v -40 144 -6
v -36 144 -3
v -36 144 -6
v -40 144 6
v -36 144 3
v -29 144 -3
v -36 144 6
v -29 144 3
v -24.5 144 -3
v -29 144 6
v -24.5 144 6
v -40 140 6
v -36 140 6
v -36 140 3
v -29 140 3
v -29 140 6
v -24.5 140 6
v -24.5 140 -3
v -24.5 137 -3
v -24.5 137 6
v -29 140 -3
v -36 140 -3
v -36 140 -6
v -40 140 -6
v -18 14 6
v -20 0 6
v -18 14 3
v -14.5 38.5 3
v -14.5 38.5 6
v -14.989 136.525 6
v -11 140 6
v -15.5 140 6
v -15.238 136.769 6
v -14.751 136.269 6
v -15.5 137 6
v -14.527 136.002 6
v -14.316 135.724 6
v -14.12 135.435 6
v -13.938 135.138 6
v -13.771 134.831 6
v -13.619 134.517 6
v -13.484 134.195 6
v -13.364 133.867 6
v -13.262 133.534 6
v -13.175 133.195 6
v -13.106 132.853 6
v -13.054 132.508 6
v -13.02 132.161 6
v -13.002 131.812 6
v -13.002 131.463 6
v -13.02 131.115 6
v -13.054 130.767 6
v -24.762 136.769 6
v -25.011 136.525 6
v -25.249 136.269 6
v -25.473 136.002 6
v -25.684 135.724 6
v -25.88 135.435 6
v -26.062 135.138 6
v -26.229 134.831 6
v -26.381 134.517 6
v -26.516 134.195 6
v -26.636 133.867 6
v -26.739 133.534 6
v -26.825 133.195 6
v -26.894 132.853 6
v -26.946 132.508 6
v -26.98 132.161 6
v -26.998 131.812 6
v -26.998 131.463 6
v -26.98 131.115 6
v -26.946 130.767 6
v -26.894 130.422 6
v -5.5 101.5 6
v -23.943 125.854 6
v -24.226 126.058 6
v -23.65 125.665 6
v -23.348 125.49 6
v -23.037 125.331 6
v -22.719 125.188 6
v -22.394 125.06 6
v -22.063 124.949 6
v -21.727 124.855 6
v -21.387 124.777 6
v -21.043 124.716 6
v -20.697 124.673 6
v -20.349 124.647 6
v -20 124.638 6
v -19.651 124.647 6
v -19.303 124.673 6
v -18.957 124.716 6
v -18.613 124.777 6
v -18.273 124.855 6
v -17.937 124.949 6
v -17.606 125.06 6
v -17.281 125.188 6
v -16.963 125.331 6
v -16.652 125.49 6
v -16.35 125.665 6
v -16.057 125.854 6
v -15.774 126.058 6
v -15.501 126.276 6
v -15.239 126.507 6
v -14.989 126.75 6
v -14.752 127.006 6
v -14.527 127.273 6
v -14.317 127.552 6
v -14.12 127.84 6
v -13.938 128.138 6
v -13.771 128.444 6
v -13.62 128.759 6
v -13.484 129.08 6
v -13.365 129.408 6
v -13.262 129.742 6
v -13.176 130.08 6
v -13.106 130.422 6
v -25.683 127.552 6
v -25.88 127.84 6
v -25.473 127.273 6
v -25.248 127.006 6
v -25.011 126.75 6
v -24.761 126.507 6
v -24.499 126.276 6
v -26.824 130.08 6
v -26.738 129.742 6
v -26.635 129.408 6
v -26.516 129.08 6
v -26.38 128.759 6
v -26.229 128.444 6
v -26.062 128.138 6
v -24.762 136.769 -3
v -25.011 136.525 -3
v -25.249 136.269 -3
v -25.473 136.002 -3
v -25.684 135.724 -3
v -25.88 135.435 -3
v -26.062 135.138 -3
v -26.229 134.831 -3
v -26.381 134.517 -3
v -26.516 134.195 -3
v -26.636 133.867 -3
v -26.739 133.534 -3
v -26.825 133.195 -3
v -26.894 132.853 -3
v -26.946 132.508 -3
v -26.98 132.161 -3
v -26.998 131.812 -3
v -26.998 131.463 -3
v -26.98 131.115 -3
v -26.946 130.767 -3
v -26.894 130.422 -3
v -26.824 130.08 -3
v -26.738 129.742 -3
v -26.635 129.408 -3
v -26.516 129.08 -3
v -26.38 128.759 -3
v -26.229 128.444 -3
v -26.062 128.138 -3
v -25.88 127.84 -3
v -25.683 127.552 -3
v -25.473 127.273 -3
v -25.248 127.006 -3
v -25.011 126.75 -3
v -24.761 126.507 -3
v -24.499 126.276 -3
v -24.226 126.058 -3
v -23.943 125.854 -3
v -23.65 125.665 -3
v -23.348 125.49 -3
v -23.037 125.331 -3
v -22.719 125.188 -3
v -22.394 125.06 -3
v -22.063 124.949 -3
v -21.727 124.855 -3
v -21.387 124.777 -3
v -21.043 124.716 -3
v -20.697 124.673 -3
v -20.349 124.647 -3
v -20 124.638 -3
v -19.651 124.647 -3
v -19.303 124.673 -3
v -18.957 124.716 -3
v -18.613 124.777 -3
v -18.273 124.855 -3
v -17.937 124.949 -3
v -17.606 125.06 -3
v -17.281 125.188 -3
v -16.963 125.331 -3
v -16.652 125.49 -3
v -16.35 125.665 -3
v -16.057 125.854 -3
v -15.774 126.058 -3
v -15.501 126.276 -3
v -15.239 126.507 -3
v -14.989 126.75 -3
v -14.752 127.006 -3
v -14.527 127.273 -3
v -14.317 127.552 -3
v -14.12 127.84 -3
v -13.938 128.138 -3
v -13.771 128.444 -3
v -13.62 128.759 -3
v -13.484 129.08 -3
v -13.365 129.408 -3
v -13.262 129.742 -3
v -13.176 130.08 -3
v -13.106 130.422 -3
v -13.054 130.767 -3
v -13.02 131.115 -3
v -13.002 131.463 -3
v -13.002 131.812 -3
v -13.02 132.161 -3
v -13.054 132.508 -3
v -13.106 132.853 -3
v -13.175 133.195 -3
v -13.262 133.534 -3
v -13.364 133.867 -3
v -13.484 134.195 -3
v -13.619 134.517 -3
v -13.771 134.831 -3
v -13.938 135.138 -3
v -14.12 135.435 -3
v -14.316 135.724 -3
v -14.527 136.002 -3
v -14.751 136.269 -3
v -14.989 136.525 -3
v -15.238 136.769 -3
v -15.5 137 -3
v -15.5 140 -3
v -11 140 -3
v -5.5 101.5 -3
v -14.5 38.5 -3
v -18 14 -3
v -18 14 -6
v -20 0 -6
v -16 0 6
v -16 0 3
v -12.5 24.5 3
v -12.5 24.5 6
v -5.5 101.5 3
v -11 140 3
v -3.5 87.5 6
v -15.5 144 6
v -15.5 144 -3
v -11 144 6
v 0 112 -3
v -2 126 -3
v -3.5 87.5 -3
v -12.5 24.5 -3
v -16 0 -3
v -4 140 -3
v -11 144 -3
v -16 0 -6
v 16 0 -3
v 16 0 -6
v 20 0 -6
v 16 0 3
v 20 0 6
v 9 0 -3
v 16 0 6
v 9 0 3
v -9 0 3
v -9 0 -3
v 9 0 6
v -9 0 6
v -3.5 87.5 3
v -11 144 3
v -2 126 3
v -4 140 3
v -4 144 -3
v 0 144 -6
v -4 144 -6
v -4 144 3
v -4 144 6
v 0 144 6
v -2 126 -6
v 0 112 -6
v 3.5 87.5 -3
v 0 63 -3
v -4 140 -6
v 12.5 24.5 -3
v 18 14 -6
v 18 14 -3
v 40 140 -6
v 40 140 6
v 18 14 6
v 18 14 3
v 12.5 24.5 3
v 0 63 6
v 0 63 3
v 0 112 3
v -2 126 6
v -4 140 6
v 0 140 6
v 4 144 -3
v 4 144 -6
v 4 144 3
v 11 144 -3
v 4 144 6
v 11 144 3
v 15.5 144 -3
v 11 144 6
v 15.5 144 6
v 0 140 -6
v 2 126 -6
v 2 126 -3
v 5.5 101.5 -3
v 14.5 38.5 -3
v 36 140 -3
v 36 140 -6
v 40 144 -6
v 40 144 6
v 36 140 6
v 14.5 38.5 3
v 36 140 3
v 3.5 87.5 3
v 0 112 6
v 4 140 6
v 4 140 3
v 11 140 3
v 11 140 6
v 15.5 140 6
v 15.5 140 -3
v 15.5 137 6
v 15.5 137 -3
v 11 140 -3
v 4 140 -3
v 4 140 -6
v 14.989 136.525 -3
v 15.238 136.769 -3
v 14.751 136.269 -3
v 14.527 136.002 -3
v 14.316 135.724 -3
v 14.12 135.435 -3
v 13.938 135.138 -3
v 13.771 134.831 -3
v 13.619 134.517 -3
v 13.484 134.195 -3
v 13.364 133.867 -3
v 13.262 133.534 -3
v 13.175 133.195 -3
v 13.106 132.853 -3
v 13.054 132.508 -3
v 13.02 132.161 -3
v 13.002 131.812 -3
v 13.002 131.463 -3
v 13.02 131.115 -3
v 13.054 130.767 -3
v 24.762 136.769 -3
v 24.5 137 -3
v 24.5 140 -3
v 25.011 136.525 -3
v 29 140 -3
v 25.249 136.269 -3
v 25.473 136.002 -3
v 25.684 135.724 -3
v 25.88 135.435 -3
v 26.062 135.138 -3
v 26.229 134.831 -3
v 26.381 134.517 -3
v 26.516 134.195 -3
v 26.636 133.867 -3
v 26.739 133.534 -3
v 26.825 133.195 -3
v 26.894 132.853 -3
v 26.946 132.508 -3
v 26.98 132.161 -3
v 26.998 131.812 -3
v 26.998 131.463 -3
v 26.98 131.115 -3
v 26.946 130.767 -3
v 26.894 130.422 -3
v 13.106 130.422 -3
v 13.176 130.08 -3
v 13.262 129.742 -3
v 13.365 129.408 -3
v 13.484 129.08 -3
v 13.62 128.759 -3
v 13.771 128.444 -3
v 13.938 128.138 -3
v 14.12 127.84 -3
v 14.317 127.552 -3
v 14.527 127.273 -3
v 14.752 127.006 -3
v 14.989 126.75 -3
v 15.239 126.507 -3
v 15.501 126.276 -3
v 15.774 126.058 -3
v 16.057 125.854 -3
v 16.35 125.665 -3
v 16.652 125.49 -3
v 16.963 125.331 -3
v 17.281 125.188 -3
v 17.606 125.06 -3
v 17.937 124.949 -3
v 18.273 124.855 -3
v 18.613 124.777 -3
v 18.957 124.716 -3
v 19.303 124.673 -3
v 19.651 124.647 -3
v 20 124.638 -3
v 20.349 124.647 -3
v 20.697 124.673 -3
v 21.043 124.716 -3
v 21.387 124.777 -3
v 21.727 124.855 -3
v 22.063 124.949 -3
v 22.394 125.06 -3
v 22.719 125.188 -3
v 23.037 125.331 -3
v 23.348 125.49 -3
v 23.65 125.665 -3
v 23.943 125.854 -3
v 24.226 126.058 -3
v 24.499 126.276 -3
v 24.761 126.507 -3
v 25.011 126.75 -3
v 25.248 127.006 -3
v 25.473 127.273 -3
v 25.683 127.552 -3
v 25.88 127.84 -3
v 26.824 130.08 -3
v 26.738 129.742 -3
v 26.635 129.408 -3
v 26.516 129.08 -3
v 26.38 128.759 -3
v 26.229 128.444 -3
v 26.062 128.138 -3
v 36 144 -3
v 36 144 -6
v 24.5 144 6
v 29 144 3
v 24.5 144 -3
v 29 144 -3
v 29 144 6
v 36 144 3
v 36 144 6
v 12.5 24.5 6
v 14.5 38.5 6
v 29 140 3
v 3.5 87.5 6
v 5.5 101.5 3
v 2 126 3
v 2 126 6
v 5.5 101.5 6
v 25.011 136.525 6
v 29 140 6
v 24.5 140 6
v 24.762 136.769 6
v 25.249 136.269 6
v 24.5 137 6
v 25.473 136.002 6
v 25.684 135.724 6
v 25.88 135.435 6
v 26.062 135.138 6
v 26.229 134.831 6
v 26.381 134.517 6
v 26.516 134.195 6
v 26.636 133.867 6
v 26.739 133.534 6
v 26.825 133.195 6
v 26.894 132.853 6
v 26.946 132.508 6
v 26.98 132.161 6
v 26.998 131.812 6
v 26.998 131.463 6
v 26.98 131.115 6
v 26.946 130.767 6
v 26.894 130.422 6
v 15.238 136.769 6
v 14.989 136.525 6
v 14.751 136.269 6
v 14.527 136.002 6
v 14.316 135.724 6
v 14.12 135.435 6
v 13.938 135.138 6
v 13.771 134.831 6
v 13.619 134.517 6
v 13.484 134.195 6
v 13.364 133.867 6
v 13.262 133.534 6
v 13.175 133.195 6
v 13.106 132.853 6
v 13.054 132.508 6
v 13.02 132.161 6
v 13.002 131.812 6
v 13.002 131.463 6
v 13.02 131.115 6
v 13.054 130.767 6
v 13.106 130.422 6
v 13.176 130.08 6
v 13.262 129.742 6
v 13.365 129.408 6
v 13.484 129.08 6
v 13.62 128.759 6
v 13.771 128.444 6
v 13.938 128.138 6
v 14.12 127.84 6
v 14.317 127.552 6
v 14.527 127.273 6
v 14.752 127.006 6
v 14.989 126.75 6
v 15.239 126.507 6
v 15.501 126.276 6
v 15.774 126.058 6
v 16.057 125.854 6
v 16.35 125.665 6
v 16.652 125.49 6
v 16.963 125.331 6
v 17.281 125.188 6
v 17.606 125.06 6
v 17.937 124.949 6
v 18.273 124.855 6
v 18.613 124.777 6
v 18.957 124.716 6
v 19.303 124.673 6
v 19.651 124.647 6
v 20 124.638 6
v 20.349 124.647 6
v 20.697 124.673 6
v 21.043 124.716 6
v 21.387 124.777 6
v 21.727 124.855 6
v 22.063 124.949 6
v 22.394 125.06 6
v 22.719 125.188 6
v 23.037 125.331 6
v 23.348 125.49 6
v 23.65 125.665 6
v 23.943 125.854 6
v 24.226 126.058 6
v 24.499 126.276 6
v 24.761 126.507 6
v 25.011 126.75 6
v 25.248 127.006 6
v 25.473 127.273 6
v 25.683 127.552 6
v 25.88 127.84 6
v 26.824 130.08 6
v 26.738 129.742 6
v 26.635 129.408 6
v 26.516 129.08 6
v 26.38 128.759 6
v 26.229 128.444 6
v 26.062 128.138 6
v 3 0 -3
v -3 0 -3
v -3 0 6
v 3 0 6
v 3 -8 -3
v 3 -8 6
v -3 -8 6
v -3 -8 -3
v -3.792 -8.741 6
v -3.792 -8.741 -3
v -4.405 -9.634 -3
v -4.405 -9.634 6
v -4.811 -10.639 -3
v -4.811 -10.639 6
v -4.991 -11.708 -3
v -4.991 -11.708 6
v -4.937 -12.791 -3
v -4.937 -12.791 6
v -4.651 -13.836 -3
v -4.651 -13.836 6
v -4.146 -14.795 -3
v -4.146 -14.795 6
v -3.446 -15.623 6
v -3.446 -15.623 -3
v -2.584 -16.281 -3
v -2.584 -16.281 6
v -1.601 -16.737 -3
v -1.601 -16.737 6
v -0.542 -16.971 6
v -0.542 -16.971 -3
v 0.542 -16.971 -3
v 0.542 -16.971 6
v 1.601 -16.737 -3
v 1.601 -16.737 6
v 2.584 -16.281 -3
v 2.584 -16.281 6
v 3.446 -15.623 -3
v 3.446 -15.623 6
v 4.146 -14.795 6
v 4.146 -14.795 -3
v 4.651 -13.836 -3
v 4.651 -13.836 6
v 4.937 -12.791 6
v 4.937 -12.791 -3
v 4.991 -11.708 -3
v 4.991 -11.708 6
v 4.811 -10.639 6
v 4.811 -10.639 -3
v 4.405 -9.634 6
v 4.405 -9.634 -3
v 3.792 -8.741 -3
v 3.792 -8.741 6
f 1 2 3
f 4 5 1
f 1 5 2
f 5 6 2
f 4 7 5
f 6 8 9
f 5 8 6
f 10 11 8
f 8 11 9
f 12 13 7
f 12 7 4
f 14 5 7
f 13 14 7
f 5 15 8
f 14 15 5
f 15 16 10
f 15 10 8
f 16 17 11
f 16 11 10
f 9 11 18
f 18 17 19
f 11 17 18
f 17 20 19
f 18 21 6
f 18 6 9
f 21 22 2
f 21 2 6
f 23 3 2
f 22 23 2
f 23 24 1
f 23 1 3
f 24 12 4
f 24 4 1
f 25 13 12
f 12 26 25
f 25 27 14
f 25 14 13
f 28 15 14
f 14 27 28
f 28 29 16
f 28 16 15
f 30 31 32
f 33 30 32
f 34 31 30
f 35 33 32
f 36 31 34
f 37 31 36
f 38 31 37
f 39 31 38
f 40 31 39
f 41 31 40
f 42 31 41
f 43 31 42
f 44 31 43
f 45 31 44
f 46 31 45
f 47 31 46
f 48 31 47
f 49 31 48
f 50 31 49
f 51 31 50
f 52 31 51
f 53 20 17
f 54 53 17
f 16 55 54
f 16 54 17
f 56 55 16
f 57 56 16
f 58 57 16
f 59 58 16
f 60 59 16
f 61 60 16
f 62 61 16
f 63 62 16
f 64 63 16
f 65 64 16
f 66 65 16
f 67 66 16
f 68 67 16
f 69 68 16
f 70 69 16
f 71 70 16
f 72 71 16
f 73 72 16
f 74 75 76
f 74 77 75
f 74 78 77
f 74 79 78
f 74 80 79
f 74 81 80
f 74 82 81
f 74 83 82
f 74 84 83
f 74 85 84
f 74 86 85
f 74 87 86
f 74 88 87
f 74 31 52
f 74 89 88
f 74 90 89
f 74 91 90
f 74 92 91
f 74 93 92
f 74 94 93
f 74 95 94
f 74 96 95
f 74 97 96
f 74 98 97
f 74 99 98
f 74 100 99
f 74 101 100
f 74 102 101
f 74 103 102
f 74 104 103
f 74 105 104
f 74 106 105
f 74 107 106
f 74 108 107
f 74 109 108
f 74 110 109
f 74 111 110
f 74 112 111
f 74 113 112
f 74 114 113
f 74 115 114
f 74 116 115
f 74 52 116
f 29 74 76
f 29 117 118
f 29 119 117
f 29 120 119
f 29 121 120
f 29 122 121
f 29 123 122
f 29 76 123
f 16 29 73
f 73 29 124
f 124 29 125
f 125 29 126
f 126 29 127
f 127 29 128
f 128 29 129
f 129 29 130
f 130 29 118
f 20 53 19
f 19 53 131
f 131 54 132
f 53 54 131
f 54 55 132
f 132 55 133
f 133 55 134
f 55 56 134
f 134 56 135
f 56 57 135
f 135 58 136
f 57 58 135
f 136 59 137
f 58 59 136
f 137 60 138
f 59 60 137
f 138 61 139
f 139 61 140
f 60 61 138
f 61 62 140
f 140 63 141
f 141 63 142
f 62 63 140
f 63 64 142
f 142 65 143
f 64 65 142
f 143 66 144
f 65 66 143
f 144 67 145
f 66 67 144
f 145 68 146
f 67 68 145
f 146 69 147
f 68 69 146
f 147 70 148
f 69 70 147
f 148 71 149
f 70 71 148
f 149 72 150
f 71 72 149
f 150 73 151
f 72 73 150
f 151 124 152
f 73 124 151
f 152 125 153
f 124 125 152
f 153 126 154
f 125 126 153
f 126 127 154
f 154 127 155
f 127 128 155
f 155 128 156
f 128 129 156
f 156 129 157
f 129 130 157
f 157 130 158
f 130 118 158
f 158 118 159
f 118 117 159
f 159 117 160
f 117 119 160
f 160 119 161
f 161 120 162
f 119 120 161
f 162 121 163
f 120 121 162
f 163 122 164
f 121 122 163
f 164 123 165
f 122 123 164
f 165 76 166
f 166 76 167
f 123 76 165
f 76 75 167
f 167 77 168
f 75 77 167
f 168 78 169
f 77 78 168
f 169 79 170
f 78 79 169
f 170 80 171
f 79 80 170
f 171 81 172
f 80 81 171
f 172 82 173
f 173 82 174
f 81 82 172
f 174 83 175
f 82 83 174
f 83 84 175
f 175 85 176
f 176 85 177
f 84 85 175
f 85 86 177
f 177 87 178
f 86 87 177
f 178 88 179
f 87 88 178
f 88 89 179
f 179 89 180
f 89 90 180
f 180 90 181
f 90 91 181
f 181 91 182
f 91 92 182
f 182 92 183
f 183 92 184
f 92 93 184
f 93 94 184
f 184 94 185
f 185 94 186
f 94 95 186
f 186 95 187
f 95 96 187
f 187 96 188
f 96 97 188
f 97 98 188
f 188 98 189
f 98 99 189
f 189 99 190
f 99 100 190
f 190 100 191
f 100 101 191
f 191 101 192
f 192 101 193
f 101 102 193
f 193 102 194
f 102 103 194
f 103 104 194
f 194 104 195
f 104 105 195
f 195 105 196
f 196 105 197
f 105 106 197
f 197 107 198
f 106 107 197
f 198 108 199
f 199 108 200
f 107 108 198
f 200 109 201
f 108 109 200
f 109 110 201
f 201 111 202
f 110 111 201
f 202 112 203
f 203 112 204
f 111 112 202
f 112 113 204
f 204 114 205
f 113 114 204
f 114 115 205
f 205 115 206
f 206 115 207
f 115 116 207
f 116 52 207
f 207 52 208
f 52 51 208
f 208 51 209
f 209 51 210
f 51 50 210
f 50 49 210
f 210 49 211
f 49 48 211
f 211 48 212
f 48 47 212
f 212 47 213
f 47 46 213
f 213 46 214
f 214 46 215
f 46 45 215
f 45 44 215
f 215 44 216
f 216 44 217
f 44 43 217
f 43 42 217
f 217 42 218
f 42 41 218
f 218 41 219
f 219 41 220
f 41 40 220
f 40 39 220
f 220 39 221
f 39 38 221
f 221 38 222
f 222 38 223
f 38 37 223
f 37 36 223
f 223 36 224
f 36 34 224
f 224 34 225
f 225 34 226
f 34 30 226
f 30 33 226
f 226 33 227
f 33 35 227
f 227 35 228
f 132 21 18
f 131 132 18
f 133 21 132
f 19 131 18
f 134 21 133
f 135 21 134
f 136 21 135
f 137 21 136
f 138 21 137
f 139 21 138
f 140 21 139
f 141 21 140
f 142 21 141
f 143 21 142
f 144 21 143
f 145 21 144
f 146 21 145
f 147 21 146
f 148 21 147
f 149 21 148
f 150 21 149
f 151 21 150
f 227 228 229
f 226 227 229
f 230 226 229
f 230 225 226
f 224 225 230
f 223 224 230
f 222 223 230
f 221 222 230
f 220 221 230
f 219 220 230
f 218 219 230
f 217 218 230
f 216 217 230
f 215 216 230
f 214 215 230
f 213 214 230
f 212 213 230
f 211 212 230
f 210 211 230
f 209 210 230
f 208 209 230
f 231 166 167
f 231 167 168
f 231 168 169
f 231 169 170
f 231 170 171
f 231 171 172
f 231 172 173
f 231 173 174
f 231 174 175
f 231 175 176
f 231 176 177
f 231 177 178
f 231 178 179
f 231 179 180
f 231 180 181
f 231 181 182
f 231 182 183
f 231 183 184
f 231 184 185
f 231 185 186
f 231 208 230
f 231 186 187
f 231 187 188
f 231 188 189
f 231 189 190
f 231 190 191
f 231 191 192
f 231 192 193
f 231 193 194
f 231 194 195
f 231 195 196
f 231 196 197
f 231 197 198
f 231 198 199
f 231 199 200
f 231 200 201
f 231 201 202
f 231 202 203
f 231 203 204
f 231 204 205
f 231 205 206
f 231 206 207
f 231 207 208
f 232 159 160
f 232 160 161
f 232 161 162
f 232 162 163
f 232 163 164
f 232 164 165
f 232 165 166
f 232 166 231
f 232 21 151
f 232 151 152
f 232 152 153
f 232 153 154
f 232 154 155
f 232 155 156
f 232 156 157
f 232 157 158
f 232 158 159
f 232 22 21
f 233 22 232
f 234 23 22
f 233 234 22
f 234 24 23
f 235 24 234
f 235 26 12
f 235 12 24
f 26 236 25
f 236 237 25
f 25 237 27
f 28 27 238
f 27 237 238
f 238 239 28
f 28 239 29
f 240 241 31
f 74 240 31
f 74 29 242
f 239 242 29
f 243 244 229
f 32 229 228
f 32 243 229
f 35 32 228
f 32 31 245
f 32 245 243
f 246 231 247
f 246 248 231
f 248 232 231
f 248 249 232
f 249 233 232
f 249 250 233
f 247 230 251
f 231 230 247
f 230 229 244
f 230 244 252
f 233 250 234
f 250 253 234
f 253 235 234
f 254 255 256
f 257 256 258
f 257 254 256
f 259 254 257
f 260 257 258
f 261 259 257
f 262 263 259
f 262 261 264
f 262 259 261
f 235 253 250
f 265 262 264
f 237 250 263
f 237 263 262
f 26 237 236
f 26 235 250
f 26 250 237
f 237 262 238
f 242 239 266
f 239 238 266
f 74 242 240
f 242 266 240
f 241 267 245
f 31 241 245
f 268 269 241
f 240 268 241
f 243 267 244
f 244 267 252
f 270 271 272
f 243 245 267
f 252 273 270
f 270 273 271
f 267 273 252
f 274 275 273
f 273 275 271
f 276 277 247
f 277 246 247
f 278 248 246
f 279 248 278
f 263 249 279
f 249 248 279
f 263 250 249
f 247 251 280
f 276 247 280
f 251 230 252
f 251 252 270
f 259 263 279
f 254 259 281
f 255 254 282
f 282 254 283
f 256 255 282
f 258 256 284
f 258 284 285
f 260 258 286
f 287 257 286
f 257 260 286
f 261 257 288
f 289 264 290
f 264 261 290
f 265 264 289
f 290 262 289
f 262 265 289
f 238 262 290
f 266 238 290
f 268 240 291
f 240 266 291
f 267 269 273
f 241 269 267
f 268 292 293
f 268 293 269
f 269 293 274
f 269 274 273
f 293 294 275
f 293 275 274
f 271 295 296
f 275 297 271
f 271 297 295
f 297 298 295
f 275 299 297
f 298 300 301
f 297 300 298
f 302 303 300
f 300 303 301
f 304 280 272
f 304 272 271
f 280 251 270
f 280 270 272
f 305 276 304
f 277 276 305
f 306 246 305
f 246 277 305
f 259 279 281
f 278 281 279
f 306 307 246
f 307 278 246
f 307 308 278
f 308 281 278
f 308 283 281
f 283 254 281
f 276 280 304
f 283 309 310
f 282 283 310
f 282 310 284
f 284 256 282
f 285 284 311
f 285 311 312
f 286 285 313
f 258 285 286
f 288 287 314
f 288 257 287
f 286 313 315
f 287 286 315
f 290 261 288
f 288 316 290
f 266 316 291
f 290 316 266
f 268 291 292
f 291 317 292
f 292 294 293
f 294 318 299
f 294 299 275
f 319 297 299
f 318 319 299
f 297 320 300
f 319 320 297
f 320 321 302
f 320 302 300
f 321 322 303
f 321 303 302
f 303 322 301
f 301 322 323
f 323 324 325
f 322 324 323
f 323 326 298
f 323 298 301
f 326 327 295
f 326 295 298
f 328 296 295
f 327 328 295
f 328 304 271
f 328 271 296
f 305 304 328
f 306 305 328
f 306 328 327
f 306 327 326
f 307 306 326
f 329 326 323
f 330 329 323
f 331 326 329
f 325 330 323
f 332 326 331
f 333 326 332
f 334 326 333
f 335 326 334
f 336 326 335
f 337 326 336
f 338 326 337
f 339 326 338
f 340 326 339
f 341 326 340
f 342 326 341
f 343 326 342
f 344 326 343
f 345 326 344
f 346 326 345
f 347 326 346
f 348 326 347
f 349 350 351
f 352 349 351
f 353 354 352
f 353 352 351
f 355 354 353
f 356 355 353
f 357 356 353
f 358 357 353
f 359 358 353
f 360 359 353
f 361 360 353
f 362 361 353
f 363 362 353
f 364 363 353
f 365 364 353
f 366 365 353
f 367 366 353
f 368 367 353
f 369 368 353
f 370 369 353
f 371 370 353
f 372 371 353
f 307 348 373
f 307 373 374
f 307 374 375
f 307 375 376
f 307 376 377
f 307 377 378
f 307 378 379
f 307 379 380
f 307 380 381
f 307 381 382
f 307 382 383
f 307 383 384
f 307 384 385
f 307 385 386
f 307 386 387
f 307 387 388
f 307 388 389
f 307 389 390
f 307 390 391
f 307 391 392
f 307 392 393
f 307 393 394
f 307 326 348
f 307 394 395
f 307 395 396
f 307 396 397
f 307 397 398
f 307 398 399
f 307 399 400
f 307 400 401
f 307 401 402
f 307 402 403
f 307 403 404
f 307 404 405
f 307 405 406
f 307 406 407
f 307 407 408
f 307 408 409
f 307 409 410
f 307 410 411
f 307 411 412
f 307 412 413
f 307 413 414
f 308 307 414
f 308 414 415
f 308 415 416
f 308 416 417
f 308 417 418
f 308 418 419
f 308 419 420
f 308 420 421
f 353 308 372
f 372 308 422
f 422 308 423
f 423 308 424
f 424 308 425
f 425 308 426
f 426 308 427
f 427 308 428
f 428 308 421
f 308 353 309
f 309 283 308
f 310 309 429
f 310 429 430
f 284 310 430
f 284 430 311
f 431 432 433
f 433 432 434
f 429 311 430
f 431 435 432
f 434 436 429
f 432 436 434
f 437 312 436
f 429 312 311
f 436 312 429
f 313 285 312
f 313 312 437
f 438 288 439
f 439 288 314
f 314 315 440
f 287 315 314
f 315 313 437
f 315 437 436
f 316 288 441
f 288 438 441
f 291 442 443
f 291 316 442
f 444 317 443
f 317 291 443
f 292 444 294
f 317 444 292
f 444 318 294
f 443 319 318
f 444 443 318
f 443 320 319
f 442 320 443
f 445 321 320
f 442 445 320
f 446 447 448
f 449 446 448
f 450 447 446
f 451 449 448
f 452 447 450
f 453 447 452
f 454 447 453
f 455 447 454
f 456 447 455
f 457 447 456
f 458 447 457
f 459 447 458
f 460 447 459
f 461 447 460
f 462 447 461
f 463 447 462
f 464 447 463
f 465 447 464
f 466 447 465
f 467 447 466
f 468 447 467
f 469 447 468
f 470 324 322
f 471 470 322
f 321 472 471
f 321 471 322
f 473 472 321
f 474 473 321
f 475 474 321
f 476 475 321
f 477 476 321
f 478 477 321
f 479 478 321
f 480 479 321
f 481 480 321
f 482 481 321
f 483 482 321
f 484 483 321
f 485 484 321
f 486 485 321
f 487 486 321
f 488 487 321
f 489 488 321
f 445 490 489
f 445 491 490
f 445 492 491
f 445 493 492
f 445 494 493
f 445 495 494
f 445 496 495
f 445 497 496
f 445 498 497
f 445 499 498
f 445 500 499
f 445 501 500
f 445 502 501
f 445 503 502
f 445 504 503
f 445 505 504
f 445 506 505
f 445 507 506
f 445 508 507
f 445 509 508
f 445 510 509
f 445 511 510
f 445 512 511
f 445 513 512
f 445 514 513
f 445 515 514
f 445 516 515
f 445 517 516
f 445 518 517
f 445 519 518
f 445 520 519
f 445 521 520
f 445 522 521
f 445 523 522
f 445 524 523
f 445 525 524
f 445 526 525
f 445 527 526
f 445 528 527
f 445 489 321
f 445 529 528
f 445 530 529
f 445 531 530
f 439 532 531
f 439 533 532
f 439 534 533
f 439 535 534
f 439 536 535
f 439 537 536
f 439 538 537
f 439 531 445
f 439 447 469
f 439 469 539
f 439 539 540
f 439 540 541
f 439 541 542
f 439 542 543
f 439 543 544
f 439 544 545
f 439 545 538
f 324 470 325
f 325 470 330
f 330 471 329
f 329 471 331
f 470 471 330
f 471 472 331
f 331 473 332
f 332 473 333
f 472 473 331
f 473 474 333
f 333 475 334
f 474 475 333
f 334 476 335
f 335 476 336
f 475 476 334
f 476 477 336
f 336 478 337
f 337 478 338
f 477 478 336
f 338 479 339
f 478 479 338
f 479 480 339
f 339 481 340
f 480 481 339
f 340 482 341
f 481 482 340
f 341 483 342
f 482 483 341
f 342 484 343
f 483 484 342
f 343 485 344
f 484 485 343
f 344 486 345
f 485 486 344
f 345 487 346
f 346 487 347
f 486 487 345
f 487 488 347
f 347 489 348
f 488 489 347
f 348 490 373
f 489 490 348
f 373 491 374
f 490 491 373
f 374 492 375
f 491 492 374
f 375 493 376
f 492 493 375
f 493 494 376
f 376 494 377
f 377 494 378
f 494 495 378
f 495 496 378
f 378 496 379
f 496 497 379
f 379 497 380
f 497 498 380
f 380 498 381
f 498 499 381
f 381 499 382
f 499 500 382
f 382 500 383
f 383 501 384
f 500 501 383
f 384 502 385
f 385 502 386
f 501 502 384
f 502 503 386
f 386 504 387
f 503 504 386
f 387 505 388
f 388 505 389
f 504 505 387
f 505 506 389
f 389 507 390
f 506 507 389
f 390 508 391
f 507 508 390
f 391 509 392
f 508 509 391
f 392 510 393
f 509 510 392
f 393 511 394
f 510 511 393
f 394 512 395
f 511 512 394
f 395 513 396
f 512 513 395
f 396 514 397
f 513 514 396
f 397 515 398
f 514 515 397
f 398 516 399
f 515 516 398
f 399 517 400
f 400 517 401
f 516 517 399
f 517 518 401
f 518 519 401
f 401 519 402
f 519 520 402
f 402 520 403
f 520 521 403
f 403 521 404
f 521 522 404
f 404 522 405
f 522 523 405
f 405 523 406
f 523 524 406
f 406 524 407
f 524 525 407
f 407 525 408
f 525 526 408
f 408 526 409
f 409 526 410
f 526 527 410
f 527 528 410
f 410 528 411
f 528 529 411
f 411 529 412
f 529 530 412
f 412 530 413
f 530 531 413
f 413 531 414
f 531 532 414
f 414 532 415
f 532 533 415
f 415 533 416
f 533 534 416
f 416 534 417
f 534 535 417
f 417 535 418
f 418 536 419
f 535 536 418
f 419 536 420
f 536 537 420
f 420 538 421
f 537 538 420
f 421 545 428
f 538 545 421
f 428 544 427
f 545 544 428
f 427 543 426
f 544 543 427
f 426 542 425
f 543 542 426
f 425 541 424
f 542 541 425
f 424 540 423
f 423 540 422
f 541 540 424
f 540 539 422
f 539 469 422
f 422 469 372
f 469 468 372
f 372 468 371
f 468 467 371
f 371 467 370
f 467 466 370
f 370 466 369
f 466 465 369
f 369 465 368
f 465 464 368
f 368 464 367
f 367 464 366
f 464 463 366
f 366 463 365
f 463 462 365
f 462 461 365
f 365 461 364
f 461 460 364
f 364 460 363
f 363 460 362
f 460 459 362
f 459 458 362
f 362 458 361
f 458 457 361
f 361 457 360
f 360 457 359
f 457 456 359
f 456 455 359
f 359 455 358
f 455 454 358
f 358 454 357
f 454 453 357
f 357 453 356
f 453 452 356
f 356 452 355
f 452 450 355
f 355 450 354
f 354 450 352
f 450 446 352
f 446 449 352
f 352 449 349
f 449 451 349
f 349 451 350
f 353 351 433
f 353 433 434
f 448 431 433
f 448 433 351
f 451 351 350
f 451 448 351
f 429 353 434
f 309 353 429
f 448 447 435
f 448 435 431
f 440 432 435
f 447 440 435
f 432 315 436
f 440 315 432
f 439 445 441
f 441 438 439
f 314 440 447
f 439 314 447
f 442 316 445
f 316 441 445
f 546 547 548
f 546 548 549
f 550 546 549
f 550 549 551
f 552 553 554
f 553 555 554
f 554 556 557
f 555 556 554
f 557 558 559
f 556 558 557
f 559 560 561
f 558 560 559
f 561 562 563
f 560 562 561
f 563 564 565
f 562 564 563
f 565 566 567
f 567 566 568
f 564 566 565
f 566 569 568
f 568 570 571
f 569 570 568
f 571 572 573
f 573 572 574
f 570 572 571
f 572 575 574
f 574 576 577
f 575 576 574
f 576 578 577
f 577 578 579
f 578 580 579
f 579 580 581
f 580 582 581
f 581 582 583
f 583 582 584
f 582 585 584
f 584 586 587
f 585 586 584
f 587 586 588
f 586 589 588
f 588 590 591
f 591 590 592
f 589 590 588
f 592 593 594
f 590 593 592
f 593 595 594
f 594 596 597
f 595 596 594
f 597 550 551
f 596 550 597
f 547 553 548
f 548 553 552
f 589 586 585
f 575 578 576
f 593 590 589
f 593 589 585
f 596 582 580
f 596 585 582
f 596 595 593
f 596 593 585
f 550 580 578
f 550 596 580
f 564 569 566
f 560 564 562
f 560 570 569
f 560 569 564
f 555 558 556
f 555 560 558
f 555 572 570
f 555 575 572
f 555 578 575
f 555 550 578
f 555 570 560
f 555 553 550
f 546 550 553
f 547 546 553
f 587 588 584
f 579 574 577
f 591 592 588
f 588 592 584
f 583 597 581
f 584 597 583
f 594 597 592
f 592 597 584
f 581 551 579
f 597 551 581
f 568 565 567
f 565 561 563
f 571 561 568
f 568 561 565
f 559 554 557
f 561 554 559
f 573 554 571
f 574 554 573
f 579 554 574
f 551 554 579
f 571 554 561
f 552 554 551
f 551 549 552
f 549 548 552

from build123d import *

# Parameters (mm, degrees)
SKETCH004_W          = 32
SKETCH004_H          = 3
SKETCH005_W          = 7
SKETCH005_H          = 3
SKETCH006_W          = 7
SKETCH006_H          = 3
POCKET_DEPTH         = 6.001
POCKET_DEPTH_BACK    = -6.001
POCKET001_DEPTH      = 6.001
POCKET001_DEPTH_BACK = -6.001
PAD_DEPTH            = 6
PAD_DEPTH_BACK       = 3


with BuildPart() as body:
    # AdditivePipe: sweep along a path in Sketch
    with BuildLine(Plane.XY) as additivepipe_path:
        Line((-20, 144), (-20, 140))
        Line((-20, 140), (0, 0))
    # Sketch002 → AdditivePipe (sweep)
    with BuildSketch(Plane.XZ):
        Polygon((-20, 6), (-20, -6), (-16, -6), (-16, -3), (-9, -3), (9, -3), (16, -3), (16, -6), (20, -6), (20, 6), (16, 6), (16, 3), (9, 3), (9, 6), (-9, 6), (-9, 3), (-16, 3), (-16, 6), align=None)
    sweep(path=additivepipe_path.line)

    # AdditivePipe001: sweep along a path in Sketch001
    with BuildLine(Plane.XY) as additivepipe001_path:
        Line((20, 144), (20, 140))
        Line((20, 140), (0, 0))
    # Sketch002 → AdditivePipe001 (sweep)
    with BuildSketch(Plane.XZ):
        Polygon((-20, 6), (-20, -6), (-16, -6), (-16, -3), (-9, -3), (9, -3), (16, -3), (16, -6), (20, -6), (20, 6), (16, 6), (16, 3), (9, 3), (9, 6), (-9, 6), (-9, 3), (-16, 3), (-16, 6), align=None)
    sweep(path=additivepipe001_path.line)

    # SubtractivePipe: sweep along a path in Sketch
    with BuildLine(Plane.XY) as subtractivepipe_path:
        Line((-20, 144), (-20, 140))
        Line((-20, 140), (0, 0))
    # Sketch004 → SubtractivePipe (sweep, cut)
    with BuildSketch(Plane.XZ):
        with Locations((0, -4.5)):
            Rectangle(SKETCH004_W, SKETCH004_H)
    sweep(path=subtractivepipe_path.line, mode=Mode.SUBTRACT)

    # SubtractivePipe001: sweep along a path in Sketch001
    with BuildLine(Plane.XY) as subtractivepipe001_path:
        Line((20, 144), (20, 140))
        Line((20, 140), (0, 0))
    # Sketch004 → SubtractivePipe001 (sweep, cut)
    with BuildSketch(Plane.XZ):
        with Locations((0, -4.5)):
            Rectangle(SKETCH004_W, SKETCH004_H)
    sweep(path=subtractivepipe001_path.line, mode=Mode.SUBTRACT)

    # SubtractivePipe002: sweep along a path in Sketch
    with BuildLine(Plane.XY) as subtractivepipe002_path:
        Line((-20, 144), (-20, 140))
        Line((-20, 140), (0, 0))
    # Sketch005 → SubtractivePipe002 (sweep, cut)
    with BuildSketch(Plane.XZ):
        with Locations((-12.5, 4.5)):
            Rectangle(SKETCH005_W, SKETCH005_H)
    sweep(path=subtractivepipe002_path.line, mode=Mode.SUBTRACT)

    # SubtractivePipe003: sweep along a path in Sketch001
    with BuildLine(Plane.XY) as subtractivepipe003_path:
        Line((20, 144), (20, 140))
        Line((20, 140), (0, 0))
    # Sketch005 → SubtractivePipe003 (sweep, cut)
    with BuildSketch(Plane.XZ):
        with Locations((-12.5, 4.5)):
            Rectangle(SKETCH005_W, SKETCH005_H)
    sweep(path=subtractivepipe003_path.line, mode=Mode.SUBTRACT)

    # SubtractivePipe004: sweep along a path in Sketch
    with BuildLine(Plane.XY) as subtractivepipe004_path:
        Line((-20, 144), (-20, 140))
        Line((-20, 140), (0, 0))
    # Sketch006 → SubtractivePipe004 (sweep, cut)
    with BuildSketch(Plane.XZ):
        with Locations((12.5, 4.5)):
            Rectangle(SKETCH006_W, SKETCH006_H)
    sweep(path=subtractivepipe004_path.line, mode=Mode.SUBTRACT)

    # SubtractivePipe005: sweep along a path in Sketch001
    with BuildLine(Plane.XY) as subtractivepipe005_path:
        Line((20, 144), (20, 140))
        Line((20, 140), (0, 0))
    # Sketch006 → SubtractivePipe005 (sweep, cut)
    with BuildSketch(Plane.XZ):
        with Locations((12.5, 4.5)):
            Rectangle(SKETCH006_W, SKETCH006_H)
    sweep(path=subtractivepipe005_path.line, mode=Mode.SUBTRACT)

    # Sketch007 → Pocket (cut, two sides)
    with BuildSketch(Plane.XY) as pocket_sk:
        with BuildLine():
            Line((-24.5, 144), (-15.5, 144))
            Line((-15.5, 144), (-15.5, 137))
            ThreePointArc((-24.5, 137), (-20, 124.638097), (-15.5, 137))
            Line((-24.5, 144), (-24.5, 137))
        make_face()
    extrude(amount=-POCKET_DEPTH, mode=Mode.SUBTRACT)
    extrude(pocket_sk.sketch, amount=-POCKET_DEPTH_BACK, mode=Mode.SUBTRACT)

    # Sketch008 → Pocket001 (cut, two sides)
    with BuildSketch(Plane.XY) as pocket001_sk:
        with BuildLine():
            Line((15.5, 144), (24.5, 144))
            Line((24.5, 144), (24.5, 137))
            ThreePointArc((15.5, 137), (20, 124.638097), (24.5, 137))
            Line((15.5, 144), (15.5, 137))
        make_face()
    extrude(amount=-POCKET001_DEPTH, mode=Mode.SUBTRACT)
    extrude(pocket001_sk.sketch, amount=-POCKET001_DEPTH_BACK, mode=Mode.SUBTRACT)


with BuildPart() as body001:
    # Sketch009 → Pad (new body, two sides)
    with BuildSketch(Plane.XY) as pad_sk:
        with BuildLine():
            Line((-3, 0), (3, 0))
            Line((3, 0), (3, -8))
            ThreePointArc((-3, -8), (0, -17), (3, -8))
            Line((-3, 0), (-3, -8))
        make_face()
    extrude(amount=PAD_DEPTH)
    extrude(pad_sk.sketch, amount=-PAD_DEPTH_BACK)


solid = Compound([body.part, body001.part])
